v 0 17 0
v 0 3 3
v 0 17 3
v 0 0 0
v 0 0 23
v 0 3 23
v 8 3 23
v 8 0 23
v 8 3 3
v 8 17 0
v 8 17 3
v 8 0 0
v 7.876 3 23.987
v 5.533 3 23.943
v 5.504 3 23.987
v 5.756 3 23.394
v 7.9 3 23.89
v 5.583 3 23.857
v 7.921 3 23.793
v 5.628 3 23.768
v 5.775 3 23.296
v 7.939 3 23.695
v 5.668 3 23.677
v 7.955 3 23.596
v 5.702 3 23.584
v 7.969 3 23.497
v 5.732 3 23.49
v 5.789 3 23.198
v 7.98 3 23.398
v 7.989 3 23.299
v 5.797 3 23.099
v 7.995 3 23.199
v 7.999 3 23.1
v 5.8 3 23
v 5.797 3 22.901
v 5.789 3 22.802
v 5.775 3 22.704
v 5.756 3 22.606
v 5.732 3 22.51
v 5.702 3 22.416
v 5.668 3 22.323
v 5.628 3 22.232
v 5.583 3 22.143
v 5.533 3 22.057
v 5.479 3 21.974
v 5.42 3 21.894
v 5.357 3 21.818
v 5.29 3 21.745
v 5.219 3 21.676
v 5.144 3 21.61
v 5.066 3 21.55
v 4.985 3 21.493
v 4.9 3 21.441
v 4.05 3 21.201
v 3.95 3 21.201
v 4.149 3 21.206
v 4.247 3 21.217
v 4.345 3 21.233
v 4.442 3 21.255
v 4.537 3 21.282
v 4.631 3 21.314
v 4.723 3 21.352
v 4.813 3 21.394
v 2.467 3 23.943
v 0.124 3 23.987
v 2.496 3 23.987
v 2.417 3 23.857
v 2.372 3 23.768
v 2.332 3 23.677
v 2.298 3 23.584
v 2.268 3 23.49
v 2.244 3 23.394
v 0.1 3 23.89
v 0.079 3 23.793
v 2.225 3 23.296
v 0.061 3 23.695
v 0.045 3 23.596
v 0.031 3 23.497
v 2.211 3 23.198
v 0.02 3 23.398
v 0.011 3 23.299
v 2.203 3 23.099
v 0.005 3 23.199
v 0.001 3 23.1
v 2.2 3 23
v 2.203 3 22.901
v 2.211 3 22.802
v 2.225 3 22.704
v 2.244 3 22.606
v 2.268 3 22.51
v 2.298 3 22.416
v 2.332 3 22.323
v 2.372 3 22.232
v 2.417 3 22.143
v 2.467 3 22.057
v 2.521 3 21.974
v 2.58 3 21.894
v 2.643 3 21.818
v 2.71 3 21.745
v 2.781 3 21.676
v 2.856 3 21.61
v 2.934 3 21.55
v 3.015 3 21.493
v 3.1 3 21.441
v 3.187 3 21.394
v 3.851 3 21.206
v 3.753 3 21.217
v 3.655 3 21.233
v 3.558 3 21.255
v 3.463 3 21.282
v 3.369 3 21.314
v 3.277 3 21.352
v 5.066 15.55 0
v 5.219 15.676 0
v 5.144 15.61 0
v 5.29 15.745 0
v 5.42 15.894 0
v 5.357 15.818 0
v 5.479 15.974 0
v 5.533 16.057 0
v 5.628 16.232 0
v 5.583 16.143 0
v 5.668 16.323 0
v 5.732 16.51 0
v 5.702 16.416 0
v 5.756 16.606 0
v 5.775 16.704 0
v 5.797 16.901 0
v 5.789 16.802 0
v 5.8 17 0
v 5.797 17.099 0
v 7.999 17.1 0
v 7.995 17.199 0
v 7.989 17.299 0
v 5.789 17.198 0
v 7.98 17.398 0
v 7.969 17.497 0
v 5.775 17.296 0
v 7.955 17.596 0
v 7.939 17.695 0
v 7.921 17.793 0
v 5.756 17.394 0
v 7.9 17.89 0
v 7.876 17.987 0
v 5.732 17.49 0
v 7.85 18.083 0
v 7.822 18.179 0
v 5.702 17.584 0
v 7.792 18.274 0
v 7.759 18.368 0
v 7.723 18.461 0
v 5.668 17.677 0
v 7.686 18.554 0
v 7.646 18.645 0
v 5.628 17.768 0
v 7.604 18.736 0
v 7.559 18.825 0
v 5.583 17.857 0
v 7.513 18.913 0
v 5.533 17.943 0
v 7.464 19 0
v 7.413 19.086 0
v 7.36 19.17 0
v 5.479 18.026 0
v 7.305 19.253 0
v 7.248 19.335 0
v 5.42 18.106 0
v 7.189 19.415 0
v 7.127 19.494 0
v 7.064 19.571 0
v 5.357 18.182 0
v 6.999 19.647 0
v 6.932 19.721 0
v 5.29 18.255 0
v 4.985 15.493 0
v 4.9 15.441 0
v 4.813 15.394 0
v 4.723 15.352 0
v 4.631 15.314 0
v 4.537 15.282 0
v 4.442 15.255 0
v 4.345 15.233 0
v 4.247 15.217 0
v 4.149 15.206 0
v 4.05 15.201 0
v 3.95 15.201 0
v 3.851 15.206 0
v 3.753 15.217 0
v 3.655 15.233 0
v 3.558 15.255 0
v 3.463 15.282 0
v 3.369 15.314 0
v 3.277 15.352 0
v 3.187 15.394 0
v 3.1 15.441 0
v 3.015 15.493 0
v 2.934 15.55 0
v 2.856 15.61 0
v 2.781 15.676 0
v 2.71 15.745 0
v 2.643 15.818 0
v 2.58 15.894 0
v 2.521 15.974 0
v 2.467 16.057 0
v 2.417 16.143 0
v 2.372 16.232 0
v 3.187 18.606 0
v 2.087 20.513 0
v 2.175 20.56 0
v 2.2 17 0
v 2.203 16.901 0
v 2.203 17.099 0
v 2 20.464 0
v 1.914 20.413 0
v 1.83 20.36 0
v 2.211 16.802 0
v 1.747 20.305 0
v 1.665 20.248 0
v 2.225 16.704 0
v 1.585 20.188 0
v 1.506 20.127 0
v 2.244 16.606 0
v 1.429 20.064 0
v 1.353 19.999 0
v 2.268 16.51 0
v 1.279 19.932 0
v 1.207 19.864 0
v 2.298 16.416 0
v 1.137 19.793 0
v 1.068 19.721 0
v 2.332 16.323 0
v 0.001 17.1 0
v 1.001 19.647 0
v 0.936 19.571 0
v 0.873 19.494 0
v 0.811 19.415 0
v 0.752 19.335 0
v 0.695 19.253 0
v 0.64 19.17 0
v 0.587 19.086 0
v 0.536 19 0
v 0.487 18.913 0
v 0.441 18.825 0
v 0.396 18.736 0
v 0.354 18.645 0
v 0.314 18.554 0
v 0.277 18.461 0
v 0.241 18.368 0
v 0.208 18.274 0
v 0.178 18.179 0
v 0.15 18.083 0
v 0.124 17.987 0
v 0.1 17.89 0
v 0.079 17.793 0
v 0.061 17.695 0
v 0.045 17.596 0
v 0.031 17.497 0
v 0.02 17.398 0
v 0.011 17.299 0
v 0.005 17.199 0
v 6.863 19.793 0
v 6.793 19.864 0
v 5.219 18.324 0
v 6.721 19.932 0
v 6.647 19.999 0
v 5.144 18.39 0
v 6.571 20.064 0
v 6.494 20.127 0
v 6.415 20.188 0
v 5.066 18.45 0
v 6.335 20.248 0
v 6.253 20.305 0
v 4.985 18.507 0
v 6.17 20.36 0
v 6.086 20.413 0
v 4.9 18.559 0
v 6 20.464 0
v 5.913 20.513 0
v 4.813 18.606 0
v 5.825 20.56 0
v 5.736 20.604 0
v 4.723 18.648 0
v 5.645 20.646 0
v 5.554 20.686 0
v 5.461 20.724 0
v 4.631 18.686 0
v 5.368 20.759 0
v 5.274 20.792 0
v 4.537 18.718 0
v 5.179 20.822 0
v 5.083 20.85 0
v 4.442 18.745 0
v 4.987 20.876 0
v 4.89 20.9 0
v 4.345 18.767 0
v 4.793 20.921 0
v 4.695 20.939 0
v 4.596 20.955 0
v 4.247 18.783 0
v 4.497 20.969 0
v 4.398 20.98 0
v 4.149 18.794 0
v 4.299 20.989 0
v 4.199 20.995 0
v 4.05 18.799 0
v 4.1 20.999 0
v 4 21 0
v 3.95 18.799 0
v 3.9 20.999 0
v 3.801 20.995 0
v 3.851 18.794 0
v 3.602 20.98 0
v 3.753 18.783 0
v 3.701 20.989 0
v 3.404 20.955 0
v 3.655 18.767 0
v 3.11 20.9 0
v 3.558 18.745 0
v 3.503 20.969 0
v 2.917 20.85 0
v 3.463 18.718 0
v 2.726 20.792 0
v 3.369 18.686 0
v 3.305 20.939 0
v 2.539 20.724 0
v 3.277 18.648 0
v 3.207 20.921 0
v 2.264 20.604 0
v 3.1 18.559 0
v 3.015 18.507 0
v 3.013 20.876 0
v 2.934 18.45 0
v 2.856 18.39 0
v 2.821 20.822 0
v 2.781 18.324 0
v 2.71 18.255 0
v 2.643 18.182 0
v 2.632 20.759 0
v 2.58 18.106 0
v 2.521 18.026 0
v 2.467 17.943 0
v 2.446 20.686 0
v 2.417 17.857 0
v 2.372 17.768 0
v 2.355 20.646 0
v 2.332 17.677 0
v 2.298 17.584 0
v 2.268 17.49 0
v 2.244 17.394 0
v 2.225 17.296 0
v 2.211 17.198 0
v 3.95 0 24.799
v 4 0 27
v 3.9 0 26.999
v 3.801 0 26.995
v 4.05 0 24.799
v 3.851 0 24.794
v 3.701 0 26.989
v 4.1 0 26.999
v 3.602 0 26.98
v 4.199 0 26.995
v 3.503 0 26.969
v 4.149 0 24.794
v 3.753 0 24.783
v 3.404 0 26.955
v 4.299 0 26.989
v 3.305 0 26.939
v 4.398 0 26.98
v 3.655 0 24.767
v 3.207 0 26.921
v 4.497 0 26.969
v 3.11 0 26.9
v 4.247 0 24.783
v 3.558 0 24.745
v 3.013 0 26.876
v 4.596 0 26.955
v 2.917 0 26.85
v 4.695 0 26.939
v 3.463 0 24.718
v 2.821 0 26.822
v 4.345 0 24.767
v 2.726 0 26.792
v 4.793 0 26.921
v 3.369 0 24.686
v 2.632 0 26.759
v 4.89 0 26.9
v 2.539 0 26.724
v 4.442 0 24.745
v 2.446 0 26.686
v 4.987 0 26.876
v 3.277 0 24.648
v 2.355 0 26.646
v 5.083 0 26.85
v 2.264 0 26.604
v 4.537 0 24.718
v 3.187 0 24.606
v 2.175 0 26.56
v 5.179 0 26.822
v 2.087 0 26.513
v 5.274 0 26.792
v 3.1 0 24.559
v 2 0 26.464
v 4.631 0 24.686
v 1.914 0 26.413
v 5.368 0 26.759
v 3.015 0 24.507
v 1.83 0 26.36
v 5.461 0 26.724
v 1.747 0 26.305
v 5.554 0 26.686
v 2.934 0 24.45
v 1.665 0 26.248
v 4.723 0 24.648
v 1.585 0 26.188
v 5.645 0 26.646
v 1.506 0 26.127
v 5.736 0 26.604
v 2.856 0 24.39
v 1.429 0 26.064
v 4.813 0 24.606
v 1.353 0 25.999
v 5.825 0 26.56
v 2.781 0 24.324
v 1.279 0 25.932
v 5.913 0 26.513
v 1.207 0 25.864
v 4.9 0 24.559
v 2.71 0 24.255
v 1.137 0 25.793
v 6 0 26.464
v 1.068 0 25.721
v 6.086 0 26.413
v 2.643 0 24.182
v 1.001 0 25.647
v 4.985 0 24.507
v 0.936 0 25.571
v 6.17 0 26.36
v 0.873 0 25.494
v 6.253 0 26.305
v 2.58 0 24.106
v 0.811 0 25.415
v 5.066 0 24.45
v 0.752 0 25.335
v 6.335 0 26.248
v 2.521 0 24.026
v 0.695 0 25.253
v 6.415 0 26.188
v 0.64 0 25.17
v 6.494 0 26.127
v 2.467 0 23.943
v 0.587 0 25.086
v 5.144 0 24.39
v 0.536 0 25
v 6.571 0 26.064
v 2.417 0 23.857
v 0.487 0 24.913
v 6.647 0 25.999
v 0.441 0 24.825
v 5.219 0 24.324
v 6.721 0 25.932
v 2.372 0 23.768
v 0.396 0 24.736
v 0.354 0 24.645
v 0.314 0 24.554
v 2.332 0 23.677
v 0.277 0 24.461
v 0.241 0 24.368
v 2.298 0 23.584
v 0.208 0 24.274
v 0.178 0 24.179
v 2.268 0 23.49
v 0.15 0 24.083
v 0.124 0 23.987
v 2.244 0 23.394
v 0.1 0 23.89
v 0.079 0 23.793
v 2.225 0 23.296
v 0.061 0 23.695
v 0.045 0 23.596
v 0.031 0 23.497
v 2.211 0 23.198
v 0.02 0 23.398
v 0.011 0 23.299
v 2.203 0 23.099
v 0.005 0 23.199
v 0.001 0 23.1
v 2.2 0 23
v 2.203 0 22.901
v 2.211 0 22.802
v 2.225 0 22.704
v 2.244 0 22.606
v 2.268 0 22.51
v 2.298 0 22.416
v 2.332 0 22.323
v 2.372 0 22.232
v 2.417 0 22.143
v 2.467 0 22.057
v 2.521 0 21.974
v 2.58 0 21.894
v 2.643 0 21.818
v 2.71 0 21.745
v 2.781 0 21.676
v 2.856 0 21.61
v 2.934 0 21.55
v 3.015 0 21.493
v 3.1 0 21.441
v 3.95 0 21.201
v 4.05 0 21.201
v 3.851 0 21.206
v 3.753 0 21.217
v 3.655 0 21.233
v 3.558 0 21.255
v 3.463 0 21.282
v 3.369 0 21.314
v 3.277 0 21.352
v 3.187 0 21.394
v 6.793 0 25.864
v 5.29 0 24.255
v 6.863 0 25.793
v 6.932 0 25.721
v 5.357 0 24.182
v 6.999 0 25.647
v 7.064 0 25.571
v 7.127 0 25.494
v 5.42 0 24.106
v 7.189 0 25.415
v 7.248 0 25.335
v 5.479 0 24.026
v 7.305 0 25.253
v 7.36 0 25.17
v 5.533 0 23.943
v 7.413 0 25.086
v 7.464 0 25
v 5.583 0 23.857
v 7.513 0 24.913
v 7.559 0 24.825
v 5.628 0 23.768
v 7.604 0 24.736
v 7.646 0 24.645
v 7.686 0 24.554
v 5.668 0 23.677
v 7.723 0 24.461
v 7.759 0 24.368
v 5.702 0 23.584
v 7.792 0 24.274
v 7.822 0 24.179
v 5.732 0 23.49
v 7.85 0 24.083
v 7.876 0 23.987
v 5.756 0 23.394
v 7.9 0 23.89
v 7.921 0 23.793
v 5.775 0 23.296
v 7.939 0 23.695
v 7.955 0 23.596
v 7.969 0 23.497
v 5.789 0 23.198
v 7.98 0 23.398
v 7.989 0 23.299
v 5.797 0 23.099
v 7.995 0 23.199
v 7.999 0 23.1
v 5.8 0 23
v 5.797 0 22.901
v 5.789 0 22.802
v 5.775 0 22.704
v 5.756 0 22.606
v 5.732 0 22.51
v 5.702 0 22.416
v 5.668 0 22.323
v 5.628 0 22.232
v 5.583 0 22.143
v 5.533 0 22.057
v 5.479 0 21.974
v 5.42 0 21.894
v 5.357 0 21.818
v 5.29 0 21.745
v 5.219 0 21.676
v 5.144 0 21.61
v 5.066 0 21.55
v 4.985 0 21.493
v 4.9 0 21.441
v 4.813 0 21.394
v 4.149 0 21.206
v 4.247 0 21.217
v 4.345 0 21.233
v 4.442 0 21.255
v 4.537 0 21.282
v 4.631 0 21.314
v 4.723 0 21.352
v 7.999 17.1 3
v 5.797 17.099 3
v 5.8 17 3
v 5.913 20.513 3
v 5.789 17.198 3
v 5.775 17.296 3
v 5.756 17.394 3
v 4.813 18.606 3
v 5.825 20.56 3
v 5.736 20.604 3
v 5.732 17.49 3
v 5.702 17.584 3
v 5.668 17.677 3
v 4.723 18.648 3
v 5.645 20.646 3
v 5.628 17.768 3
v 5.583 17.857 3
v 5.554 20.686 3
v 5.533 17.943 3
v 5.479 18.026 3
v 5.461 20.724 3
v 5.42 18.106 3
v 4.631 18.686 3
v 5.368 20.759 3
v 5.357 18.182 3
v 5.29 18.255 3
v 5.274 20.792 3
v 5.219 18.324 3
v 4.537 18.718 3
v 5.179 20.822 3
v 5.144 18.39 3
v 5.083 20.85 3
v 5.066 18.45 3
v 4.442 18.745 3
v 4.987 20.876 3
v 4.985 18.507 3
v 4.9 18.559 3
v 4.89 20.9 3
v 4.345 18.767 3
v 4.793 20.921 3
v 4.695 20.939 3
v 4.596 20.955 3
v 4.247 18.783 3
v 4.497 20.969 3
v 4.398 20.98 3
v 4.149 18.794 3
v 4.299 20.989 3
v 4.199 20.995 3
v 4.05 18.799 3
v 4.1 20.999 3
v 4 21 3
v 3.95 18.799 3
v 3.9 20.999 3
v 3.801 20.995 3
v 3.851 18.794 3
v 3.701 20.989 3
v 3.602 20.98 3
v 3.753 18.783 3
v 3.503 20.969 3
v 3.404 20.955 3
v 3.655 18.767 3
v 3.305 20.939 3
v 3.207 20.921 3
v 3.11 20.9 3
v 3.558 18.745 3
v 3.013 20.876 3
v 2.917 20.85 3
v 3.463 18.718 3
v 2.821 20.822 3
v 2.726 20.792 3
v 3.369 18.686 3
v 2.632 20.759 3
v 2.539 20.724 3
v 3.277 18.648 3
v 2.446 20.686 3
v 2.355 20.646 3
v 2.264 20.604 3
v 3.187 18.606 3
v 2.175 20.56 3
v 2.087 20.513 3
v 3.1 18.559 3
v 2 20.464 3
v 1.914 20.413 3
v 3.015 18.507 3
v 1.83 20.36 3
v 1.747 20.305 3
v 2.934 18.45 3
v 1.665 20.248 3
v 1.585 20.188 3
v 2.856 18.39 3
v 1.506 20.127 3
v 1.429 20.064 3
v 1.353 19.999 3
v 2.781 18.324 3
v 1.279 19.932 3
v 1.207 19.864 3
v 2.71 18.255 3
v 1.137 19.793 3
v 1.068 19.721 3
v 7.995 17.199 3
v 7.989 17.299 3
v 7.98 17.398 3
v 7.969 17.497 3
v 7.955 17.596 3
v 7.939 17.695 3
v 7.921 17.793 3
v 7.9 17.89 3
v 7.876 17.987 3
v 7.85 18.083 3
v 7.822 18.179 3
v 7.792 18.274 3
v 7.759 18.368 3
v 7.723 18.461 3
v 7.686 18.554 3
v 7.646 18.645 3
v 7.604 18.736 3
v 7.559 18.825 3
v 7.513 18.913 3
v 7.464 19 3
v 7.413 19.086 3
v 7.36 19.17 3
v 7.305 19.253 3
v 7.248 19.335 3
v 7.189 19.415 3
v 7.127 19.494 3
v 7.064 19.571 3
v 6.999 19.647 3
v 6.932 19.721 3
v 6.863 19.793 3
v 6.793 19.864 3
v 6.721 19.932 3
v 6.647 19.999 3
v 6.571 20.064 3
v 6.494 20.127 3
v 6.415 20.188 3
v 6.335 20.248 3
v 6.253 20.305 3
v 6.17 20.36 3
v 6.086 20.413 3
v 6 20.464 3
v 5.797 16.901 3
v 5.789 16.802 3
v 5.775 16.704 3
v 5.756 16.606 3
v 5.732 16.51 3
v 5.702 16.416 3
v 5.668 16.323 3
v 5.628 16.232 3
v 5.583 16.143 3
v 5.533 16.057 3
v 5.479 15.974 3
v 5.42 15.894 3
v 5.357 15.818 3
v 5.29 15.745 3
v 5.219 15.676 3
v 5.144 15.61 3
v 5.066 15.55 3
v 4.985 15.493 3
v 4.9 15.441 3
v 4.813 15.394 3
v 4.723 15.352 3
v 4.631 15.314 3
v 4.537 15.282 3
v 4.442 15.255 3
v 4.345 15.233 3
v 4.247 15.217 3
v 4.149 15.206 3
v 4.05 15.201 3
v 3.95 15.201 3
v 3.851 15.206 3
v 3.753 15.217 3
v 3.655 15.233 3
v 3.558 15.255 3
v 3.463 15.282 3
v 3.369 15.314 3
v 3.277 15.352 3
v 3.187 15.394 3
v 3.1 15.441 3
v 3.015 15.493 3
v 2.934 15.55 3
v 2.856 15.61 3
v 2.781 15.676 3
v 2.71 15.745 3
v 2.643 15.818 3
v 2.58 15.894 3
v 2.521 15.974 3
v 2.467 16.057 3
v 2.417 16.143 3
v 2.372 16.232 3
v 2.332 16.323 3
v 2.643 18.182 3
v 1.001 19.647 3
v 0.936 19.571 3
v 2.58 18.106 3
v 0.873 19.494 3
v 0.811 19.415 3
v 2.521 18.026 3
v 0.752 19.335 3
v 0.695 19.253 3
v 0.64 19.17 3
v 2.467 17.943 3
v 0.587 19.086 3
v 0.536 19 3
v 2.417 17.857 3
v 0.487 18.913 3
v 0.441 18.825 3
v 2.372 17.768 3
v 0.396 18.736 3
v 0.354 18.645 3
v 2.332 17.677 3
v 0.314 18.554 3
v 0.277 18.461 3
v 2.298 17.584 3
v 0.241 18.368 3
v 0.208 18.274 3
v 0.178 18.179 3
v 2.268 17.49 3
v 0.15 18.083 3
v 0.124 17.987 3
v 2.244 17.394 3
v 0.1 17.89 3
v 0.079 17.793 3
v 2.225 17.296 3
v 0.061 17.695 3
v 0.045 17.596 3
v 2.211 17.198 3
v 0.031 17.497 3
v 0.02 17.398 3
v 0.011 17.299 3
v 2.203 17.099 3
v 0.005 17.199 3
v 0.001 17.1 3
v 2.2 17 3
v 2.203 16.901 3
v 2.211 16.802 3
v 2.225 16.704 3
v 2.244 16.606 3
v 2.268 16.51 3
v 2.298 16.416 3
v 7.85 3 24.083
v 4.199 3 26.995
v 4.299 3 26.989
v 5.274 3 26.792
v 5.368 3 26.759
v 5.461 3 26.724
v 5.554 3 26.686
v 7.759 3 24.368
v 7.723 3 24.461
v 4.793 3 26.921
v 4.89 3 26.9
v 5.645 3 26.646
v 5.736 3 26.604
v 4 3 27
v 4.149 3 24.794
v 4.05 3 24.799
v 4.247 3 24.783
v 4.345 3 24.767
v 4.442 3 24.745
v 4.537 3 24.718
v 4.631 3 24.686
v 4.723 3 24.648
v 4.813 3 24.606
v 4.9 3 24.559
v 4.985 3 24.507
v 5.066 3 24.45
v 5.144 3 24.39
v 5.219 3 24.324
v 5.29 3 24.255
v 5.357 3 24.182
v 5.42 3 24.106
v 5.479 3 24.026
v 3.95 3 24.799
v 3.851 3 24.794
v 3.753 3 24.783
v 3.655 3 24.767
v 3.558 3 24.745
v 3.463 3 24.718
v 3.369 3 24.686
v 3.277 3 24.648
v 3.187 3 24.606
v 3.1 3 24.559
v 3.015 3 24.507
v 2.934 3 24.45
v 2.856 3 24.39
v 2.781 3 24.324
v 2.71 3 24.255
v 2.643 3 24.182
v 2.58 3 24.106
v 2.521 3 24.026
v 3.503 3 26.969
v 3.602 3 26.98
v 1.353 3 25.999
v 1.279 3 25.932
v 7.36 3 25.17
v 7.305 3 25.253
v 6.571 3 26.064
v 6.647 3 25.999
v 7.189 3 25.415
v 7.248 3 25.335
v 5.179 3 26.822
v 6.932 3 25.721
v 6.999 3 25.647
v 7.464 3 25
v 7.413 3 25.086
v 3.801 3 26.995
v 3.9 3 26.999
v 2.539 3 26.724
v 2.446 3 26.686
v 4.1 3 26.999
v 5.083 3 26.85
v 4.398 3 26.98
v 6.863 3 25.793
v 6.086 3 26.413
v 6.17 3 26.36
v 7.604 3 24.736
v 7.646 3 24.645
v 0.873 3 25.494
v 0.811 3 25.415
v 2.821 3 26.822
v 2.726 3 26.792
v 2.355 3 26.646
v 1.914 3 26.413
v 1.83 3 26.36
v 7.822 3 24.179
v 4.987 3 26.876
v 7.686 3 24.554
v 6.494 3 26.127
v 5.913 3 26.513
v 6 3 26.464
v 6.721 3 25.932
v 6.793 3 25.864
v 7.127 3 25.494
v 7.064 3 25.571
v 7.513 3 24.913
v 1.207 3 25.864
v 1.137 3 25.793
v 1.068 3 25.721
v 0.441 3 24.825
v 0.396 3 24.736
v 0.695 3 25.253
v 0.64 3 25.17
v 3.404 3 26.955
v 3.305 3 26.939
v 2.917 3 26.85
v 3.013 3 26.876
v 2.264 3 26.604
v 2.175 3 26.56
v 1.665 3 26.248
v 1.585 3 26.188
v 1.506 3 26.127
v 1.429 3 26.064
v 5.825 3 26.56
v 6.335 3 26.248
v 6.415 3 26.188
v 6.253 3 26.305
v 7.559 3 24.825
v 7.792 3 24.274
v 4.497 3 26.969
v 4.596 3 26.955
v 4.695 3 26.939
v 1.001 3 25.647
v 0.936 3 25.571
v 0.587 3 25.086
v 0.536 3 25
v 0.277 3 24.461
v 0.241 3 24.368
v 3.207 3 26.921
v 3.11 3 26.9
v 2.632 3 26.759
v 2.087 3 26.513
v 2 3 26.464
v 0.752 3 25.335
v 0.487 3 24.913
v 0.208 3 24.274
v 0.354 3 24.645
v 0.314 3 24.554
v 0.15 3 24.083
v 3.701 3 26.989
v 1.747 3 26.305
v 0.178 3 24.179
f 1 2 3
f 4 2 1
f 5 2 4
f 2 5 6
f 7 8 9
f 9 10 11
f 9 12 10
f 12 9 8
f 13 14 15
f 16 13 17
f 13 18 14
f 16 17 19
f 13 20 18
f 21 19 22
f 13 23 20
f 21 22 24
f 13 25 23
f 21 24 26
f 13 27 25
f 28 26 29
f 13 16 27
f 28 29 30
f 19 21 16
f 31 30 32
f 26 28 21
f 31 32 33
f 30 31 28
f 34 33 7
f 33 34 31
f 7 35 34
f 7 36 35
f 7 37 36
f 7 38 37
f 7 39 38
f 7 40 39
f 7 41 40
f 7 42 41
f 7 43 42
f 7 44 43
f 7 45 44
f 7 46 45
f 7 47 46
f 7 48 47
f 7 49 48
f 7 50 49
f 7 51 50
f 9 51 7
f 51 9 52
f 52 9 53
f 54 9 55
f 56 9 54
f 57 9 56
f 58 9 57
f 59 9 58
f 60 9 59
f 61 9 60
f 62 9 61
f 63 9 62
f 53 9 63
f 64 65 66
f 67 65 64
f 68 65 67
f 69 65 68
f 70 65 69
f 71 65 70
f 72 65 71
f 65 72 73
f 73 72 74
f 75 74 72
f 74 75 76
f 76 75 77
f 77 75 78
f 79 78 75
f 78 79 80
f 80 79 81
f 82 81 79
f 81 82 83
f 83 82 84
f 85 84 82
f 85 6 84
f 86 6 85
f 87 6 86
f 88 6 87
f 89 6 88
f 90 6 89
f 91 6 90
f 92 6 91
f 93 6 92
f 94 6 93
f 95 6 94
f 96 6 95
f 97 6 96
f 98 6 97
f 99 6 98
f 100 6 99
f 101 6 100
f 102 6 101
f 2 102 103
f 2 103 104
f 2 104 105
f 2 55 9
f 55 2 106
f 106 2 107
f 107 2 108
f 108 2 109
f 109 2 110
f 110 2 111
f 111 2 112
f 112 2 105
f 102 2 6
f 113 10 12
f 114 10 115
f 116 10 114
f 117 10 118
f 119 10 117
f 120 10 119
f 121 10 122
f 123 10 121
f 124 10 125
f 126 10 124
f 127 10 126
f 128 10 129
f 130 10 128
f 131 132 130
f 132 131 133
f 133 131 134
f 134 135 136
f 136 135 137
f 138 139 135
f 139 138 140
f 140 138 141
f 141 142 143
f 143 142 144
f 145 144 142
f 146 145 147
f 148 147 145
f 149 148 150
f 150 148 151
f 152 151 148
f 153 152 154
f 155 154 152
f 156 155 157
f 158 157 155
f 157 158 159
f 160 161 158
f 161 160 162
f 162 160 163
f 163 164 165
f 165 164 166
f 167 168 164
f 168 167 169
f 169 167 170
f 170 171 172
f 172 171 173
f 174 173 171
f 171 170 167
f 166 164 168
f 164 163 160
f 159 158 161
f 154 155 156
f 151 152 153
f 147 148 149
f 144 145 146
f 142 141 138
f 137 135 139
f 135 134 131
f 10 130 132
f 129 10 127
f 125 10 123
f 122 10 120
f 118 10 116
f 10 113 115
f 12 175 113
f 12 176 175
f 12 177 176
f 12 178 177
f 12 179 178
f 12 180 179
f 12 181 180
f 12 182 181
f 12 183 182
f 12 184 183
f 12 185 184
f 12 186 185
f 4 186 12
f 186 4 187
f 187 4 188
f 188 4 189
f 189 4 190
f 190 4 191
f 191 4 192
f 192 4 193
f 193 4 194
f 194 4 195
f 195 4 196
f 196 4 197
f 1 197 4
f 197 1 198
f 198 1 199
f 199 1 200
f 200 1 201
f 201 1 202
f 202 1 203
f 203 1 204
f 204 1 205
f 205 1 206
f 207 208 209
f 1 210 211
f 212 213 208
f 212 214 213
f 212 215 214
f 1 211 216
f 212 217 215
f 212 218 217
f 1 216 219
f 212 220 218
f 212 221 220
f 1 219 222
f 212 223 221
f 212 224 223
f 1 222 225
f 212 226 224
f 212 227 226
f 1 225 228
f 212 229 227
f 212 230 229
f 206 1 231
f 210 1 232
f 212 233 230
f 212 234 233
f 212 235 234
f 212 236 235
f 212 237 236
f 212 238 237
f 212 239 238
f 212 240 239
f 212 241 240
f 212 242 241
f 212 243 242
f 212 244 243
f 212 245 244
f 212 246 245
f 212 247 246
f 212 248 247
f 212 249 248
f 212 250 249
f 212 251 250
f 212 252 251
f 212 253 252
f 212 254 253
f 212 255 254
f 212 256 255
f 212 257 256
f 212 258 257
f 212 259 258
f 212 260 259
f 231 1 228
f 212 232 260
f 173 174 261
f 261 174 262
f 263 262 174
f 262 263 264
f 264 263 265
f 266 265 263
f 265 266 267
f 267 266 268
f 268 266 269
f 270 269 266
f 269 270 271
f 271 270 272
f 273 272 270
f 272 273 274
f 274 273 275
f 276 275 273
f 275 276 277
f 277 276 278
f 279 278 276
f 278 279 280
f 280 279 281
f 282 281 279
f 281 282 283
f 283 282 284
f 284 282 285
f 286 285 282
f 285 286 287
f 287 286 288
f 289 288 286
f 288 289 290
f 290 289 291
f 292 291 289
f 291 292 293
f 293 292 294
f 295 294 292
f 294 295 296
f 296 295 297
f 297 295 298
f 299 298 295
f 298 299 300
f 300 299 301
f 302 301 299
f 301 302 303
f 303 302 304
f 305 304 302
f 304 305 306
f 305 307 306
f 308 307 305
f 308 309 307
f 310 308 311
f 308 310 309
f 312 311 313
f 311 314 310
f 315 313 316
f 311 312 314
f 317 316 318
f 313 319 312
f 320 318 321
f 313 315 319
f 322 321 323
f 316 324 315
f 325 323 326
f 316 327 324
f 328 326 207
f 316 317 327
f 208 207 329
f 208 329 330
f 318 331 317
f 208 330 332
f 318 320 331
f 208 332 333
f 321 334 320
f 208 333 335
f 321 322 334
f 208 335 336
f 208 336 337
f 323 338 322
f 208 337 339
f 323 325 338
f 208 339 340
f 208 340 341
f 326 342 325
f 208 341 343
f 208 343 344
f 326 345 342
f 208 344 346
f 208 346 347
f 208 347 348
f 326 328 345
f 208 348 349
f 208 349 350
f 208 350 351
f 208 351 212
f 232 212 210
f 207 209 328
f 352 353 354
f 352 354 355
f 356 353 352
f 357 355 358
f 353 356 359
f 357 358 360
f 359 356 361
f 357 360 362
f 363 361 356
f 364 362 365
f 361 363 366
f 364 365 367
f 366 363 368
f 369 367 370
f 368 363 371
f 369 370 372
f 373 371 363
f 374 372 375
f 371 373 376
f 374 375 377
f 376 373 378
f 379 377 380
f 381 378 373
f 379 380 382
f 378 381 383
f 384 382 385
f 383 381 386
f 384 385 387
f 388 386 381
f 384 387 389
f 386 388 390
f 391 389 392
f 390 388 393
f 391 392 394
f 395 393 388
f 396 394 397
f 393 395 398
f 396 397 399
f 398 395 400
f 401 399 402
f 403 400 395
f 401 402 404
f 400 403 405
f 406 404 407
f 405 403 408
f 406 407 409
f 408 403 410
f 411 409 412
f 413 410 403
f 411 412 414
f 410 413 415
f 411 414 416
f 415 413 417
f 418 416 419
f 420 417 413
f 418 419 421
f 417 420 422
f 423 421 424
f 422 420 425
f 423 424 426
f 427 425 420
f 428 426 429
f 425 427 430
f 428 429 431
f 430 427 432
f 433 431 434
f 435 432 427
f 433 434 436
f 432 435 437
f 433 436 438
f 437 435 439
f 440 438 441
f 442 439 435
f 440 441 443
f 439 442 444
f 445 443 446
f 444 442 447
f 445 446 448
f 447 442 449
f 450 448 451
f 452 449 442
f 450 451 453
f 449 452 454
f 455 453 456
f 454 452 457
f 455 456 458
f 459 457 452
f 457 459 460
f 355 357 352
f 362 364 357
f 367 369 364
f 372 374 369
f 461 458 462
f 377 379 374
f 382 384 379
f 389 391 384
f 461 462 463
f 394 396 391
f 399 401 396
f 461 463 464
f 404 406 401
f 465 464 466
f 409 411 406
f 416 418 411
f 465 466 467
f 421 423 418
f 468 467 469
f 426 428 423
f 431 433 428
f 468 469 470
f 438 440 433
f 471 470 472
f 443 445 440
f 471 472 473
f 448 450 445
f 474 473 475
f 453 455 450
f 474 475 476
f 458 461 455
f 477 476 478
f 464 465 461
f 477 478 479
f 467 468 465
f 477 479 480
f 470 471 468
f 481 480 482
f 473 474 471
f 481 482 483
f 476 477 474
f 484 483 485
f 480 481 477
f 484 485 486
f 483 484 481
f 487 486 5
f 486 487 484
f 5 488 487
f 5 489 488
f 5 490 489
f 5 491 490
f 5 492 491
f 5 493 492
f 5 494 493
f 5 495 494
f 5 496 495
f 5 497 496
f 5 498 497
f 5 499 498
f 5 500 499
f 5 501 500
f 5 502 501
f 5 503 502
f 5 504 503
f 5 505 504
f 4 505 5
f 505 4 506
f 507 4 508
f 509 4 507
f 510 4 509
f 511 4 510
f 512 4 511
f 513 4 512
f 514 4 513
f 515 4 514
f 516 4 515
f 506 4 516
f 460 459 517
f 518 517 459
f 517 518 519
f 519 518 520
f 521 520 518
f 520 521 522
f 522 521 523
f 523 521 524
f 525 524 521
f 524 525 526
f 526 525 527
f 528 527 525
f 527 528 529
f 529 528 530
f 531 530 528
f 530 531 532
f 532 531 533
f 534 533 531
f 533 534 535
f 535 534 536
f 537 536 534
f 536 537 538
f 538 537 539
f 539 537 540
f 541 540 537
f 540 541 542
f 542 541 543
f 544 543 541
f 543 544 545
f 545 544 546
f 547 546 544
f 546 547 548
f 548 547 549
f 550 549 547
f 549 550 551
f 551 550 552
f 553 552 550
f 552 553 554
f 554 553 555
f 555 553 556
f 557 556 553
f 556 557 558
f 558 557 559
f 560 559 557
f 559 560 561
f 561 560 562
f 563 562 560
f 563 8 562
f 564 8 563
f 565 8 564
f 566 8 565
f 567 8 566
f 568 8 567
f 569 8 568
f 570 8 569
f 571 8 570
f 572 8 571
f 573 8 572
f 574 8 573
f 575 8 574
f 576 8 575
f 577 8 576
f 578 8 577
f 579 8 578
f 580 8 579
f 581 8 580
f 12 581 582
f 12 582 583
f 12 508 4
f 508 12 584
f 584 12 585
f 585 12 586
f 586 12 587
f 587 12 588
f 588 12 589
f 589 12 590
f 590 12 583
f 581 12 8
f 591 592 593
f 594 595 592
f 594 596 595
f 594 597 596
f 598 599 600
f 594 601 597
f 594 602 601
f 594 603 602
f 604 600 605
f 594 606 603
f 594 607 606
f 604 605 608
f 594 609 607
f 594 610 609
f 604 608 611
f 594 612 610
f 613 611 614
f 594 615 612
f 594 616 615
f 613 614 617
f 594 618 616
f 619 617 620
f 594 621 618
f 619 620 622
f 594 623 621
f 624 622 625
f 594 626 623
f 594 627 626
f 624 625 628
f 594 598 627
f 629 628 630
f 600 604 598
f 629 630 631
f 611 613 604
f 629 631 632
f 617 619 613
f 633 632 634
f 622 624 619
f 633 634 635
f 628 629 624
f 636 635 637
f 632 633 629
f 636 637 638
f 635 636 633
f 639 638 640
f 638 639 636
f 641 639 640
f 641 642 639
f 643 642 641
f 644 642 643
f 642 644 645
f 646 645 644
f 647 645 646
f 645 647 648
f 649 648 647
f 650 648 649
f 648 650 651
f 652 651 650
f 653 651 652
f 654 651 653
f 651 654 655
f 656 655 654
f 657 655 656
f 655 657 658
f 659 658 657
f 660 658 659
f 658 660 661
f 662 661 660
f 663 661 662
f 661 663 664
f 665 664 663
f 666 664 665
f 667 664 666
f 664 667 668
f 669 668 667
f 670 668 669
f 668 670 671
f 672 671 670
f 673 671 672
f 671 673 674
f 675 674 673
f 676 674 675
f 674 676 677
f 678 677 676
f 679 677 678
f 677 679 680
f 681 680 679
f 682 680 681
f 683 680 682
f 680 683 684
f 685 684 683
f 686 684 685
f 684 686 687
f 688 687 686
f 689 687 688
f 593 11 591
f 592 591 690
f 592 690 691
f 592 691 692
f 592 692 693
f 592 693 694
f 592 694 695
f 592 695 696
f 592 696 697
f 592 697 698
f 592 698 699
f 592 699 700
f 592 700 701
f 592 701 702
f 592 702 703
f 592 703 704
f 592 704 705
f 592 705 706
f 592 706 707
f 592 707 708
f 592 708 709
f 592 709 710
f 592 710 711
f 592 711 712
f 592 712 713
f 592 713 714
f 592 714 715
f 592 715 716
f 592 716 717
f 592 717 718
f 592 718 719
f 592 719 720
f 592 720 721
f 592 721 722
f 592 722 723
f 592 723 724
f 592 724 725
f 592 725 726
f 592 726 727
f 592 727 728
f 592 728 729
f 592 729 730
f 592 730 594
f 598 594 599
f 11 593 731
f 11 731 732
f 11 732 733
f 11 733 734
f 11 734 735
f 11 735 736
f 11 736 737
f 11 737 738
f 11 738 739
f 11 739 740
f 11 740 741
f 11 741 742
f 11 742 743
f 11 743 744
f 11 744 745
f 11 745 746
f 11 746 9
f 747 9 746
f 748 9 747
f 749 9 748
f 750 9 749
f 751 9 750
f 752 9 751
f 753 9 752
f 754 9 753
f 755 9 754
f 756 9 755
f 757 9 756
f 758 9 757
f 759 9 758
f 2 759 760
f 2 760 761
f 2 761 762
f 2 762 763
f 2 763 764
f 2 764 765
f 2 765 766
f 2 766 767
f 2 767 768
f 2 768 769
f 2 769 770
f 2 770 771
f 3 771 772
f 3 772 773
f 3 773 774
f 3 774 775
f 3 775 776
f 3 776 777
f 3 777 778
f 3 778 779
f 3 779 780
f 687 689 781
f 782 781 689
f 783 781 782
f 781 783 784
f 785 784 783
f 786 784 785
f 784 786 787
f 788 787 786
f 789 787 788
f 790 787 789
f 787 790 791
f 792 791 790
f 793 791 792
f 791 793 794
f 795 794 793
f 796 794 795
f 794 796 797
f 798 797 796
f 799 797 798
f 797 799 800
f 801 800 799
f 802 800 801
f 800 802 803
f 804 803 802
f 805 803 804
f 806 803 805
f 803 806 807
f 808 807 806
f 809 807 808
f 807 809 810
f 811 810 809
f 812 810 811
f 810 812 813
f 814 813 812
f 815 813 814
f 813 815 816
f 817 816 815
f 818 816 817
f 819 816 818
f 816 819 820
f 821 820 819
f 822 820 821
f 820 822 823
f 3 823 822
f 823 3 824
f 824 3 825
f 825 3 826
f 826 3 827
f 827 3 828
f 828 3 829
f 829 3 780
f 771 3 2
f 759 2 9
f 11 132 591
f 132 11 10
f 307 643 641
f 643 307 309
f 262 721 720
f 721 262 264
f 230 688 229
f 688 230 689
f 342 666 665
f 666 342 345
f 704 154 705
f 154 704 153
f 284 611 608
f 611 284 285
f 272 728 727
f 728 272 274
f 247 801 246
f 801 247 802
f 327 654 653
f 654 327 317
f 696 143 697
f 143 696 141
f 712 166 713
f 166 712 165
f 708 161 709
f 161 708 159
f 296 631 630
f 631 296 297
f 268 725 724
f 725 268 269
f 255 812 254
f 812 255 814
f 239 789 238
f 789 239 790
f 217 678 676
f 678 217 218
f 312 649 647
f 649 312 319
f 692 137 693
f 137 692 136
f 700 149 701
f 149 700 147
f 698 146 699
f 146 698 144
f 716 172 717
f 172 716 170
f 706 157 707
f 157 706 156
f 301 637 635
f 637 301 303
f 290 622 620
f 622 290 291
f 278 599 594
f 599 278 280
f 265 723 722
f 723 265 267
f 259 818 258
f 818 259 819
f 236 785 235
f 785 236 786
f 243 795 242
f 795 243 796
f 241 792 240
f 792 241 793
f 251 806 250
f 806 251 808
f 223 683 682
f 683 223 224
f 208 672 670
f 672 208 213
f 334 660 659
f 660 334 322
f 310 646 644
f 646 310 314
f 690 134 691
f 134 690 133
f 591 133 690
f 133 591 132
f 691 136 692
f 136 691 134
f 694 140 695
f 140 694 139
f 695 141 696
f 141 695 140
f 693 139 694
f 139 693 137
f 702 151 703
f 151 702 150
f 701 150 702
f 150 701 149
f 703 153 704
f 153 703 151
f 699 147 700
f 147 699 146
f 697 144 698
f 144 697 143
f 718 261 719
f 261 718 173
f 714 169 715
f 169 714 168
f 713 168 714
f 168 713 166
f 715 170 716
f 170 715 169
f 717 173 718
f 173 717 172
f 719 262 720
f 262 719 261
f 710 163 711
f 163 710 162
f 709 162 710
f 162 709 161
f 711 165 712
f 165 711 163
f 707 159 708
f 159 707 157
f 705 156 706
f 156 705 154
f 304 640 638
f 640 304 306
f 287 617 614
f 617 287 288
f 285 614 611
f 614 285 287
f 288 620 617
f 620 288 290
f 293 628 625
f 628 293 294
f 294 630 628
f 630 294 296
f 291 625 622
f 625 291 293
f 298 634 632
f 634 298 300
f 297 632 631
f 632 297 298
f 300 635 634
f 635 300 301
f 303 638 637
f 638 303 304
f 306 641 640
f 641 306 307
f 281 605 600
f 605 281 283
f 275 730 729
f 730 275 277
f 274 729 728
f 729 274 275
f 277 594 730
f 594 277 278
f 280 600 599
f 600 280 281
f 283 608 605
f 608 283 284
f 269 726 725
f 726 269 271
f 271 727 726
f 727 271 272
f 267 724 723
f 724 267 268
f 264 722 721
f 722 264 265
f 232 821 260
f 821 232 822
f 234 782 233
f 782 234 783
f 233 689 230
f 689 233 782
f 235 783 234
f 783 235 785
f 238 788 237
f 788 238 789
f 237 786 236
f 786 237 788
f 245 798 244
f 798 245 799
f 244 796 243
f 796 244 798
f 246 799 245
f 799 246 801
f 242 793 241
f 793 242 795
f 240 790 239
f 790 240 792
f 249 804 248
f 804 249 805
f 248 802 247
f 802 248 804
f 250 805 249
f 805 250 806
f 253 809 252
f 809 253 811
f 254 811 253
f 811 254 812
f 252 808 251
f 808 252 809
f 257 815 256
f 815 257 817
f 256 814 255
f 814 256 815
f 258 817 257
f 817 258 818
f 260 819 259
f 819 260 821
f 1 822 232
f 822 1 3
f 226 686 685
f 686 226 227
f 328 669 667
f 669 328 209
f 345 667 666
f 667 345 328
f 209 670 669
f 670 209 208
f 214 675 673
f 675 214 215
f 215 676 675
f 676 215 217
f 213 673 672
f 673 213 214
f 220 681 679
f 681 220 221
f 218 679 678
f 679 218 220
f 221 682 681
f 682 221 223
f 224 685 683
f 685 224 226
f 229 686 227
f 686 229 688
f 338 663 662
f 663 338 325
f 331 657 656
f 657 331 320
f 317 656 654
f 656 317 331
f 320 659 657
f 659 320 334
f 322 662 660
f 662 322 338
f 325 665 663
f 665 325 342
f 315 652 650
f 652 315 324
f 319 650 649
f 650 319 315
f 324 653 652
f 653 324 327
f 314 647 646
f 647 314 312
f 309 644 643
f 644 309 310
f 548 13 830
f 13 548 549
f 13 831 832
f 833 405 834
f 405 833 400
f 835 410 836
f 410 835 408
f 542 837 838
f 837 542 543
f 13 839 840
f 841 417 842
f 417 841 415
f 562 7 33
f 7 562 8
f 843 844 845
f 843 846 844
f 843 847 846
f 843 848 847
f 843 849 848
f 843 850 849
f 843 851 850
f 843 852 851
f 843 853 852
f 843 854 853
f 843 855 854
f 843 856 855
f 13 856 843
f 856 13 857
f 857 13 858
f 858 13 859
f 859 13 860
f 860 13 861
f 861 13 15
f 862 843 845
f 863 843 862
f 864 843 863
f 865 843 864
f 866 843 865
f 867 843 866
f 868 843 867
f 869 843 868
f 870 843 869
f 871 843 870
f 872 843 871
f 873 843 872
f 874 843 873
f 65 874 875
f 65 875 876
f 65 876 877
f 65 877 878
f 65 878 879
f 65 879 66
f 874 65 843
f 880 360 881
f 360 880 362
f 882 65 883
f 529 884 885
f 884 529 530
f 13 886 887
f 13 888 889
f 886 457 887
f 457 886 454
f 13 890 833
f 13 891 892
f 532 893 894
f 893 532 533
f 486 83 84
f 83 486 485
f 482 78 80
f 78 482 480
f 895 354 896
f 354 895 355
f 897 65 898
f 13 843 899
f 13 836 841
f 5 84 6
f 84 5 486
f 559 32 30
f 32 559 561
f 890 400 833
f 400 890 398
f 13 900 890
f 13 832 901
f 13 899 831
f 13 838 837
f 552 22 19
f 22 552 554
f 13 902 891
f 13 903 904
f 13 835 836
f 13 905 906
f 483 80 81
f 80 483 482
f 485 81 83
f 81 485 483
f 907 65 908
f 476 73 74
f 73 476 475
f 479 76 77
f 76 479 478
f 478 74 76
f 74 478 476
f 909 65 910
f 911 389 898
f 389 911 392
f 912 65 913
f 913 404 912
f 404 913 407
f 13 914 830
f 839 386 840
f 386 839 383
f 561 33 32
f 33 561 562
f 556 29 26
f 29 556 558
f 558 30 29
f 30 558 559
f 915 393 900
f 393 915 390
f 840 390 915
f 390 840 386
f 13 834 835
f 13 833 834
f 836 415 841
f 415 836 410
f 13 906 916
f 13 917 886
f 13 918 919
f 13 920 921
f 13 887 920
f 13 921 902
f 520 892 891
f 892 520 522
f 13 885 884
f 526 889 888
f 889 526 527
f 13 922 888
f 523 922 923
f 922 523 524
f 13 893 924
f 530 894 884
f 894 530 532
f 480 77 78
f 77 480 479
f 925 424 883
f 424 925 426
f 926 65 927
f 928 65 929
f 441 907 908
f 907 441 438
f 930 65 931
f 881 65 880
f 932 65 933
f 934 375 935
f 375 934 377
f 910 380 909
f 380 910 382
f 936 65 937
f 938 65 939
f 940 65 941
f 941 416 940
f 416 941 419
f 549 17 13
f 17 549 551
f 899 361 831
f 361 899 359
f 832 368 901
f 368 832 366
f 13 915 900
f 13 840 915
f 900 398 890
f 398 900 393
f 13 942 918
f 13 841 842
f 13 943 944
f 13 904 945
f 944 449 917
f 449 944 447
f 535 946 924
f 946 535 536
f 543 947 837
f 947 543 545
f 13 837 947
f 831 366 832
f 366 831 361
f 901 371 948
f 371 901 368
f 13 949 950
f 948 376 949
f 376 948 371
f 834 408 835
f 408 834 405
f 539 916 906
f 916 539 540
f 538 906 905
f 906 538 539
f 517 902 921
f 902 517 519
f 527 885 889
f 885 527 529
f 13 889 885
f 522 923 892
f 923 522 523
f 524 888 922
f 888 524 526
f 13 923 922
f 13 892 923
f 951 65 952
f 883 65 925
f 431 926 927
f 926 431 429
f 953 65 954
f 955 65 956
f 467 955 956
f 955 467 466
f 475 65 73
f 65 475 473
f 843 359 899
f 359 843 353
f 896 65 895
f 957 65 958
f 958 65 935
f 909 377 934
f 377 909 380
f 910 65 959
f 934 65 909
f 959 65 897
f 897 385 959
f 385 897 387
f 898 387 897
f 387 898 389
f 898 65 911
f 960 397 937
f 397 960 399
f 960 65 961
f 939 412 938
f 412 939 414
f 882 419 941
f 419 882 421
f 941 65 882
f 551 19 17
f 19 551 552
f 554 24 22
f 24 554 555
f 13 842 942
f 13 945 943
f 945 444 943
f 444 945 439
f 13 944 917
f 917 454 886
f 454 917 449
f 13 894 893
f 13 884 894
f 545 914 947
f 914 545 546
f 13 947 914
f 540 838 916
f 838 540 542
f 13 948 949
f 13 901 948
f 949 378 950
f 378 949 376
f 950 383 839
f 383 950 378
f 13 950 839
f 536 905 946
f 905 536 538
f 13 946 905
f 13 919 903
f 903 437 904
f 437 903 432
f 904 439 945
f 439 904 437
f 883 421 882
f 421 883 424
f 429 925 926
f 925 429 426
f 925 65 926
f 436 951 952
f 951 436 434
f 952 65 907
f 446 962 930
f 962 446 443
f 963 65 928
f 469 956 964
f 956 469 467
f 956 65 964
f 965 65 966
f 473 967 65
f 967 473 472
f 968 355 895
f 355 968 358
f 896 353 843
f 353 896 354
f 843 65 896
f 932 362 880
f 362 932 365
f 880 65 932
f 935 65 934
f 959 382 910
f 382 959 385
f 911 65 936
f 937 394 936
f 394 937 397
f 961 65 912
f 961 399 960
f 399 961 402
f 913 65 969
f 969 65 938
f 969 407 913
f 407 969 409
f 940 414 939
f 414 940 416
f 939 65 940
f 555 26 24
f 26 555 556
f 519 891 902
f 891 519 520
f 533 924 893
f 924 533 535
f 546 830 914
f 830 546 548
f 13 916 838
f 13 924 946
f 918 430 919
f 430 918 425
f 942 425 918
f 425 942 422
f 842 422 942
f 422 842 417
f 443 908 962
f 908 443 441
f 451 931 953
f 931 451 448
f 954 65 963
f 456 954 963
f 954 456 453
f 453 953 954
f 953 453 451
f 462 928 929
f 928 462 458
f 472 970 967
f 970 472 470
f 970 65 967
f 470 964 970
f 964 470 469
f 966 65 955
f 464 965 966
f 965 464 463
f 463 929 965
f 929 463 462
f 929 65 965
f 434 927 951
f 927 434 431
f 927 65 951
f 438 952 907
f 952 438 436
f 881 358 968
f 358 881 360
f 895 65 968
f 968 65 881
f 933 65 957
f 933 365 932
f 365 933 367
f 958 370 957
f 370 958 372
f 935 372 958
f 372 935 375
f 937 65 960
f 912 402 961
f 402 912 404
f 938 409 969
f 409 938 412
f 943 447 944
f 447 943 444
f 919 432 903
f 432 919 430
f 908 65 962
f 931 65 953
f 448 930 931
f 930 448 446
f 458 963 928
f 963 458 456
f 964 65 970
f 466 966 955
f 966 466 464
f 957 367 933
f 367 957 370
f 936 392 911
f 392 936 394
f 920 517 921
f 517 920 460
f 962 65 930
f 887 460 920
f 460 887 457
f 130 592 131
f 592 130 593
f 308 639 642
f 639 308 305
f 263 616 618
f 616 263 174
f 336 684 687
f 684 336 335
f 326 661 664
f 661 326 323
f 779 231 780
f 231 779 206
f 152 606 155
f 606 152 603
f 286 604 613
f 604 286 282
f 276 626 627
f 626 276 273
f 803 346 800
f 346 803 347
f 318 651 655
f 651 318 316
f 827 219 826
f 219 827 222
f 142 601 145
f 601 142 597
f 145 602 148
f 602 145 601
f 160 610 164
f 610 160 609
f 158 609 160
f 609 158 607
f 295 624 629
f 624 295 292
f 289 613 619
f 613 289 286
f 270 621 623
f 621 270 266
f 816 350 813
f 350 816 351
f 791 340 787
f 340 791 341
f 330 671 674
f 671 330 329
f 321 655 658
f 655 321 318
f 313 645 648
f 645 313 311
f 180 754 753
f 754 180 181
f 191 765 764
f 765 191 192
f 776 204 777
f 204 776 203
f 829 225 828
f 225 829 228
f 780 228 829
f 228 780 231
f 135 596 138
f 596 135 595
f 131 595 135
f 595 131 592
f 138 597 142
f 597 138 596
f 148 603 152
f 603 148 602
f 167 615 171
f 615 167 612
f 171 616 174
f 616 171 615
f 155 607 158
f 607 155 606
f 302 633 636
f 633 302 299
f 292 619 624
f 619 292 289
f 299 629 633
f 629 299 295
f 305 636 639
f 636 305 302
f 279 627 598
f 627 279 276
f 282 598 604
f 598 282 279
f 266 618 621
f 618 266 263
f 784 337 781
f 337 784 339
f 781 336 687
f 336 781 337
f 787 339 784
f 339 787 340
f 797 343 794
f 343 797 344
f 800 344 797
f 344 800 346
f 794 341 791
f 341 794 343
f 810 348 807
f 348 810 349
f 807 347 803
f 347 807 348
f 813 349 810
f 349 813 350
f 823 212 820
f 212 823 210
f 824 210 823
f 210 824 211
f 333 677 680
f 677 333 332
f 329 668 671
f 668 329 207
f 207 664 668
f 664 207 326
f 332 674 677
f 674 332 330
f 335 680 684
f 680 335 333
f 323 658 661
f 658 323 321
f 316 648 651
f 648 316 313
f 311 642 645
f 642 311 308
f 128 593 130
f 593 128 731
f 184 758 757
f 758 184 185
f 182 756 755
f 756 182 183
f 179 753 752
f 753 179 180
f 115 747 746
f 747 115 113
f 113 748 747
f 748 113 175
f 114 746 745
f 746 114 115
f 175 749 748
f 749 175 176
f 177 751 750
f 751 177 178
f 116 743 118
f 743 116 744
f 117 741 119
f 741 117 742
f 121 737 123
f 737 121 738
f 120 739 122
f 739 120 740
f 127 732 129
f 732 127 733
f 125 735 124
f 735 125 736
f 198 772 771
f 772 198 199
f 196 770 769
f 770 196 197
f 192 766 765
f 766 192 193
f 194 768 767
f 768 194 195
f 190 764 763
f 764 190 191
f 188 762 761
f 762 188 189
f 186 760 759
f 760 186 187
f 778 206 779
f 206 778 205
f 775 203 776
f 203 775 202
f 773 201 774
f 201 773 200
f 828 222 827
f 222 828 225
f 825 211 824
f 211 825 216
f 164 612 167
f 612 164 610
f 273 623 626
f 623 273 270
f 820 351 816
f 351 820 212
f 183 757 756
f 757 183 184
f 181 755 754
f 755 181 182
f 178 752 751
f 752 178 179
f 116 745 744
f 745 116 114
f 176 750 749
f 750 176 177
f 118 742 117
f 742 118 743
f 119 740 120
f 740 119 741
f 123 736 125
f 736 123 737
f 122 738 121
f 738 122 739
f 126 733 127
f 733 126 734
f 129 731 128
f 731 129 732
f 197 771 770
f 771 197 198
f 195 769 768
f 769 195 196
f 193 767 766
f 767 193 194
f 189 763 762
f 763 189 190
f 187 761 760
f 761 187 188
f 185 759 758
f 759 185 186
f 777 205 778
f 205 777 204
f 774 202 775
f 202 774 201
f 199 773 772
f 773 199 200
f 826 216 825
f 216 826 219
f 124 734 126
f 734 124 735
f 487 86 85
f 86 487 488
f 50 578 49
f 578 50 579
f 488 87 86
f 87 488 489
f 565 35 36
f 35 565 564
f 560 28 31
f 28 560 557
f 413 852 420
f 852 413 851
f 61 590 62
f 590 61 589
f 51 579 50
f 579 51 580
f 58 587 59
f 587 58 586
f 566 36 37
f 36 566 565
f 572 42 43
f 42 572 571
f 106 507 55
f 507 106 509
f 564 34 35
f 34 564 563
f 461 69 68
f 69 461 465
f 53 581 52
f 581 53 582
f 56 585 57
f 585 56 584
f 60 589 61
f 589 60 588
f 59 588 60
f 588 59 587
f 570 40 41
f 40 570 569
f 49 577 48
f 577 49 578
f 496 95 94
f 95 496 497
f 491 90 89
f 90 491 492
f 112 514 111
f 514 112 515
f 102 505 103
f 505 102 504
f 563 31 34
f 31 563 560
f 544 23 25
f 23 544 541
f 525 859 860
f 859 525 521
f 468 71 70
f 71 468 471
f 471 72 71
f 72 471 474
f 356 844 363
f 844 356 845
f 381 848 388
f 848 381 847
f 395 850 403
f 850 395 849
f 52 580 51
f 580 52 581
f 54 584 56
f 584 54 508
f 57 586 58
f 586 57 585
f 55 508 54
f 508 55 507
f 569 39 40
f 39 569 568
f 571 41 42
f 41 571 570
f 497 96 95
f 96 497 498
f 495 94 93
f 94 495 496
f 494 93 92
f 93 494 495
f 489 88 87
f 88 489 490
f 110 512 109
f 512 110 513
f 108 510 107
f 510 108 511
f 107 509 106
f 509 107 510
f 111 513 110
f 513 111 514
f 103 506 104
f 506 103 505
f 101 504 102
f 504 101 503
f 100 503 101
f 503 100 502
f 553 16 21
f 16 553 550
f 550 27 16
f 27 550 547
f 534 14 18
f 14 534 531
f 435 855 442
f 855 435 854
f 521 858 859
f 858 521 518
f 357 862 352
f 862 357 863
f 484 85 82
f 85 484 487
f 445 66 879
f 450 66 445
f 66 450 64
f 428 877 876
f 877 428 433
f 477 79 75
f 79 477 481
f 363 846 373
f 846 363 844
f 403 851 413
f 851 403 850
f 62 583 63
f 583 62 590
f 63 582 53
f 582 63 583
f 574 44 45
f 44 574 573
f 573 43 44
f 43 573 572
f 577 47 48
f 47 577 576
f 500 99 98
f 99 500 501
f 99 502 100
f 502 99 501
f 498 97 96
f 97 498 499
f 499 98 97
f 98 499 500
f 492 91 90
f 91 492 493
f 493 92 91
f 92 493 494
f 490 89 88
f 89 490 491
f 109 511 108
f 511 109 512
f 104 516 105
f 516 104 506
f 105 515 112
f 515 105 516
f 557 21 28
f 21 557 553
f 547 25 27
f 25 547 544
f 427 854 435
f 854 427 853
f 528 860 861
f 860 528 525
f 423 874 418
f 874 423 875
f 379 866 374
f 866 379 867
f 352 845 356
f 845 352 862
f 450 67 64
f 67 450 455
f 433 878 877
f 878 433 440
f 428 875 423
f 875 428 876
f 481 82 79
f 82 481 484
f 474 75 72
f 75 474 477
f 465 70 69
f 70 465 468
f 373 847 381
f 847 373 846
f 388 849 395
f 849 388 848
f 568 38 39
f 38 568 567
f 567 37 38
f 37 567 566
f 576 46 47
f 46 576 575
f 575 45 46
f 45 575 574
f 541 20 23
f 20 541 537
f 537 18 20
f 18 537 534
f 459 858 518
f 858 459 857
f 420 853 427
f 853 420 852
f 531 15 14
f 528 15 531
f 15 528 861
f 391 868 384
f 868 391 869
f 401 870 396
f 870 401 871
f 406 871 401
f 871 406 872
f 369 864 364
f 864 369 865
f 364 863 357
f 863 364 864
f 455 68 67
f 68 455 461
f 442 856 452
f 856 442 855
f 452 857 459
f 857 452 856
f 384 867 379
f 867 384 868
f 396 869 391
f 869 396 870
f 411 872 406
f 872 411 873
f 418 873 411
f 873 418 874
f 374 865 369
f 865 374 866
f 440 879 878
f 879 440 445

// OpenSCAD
$fa=1;
$fs=0.1;

width =  2+3+12 ;
height = 23 ;
//profile
pWidth  = 8;
pHeight = 3;


module  shape () {
  union () {
    //VertiArm
    cube ([pWidth,pHeight,height]);
    //horizArm
    cube ([pWidth,width,pHeight]);
    // vertiTip
    translate ([pWidth/2, width,0]) {
      cylinder (d=pWidth, h=pHeight) ;
    }
    // horizTip
    translate ([pWidth/2, 0,height]) {
      rotate ([-90,0,0]) {
        cylinder (d=pWidth, h=pHeight) ;
      }
    }
  }
}

module holeM3 (h) {
  cylinder (r=3.6/2, h=h) ;
}

module gimbal () {
  difference () {
    union () {
      shape() ;
    }
    union () {
      // vertHole
      translate ([pWidth/2, width,-1]) {
        holeM3(pHeight+2) ;
      }
      // horizHole
      translate ([pWidth/2, -1,height]) {
        rotate ([-90,0,0]) {
          holeM3(pHeight+2) ;
        }
      }
    }
  }
}


gimbal();
